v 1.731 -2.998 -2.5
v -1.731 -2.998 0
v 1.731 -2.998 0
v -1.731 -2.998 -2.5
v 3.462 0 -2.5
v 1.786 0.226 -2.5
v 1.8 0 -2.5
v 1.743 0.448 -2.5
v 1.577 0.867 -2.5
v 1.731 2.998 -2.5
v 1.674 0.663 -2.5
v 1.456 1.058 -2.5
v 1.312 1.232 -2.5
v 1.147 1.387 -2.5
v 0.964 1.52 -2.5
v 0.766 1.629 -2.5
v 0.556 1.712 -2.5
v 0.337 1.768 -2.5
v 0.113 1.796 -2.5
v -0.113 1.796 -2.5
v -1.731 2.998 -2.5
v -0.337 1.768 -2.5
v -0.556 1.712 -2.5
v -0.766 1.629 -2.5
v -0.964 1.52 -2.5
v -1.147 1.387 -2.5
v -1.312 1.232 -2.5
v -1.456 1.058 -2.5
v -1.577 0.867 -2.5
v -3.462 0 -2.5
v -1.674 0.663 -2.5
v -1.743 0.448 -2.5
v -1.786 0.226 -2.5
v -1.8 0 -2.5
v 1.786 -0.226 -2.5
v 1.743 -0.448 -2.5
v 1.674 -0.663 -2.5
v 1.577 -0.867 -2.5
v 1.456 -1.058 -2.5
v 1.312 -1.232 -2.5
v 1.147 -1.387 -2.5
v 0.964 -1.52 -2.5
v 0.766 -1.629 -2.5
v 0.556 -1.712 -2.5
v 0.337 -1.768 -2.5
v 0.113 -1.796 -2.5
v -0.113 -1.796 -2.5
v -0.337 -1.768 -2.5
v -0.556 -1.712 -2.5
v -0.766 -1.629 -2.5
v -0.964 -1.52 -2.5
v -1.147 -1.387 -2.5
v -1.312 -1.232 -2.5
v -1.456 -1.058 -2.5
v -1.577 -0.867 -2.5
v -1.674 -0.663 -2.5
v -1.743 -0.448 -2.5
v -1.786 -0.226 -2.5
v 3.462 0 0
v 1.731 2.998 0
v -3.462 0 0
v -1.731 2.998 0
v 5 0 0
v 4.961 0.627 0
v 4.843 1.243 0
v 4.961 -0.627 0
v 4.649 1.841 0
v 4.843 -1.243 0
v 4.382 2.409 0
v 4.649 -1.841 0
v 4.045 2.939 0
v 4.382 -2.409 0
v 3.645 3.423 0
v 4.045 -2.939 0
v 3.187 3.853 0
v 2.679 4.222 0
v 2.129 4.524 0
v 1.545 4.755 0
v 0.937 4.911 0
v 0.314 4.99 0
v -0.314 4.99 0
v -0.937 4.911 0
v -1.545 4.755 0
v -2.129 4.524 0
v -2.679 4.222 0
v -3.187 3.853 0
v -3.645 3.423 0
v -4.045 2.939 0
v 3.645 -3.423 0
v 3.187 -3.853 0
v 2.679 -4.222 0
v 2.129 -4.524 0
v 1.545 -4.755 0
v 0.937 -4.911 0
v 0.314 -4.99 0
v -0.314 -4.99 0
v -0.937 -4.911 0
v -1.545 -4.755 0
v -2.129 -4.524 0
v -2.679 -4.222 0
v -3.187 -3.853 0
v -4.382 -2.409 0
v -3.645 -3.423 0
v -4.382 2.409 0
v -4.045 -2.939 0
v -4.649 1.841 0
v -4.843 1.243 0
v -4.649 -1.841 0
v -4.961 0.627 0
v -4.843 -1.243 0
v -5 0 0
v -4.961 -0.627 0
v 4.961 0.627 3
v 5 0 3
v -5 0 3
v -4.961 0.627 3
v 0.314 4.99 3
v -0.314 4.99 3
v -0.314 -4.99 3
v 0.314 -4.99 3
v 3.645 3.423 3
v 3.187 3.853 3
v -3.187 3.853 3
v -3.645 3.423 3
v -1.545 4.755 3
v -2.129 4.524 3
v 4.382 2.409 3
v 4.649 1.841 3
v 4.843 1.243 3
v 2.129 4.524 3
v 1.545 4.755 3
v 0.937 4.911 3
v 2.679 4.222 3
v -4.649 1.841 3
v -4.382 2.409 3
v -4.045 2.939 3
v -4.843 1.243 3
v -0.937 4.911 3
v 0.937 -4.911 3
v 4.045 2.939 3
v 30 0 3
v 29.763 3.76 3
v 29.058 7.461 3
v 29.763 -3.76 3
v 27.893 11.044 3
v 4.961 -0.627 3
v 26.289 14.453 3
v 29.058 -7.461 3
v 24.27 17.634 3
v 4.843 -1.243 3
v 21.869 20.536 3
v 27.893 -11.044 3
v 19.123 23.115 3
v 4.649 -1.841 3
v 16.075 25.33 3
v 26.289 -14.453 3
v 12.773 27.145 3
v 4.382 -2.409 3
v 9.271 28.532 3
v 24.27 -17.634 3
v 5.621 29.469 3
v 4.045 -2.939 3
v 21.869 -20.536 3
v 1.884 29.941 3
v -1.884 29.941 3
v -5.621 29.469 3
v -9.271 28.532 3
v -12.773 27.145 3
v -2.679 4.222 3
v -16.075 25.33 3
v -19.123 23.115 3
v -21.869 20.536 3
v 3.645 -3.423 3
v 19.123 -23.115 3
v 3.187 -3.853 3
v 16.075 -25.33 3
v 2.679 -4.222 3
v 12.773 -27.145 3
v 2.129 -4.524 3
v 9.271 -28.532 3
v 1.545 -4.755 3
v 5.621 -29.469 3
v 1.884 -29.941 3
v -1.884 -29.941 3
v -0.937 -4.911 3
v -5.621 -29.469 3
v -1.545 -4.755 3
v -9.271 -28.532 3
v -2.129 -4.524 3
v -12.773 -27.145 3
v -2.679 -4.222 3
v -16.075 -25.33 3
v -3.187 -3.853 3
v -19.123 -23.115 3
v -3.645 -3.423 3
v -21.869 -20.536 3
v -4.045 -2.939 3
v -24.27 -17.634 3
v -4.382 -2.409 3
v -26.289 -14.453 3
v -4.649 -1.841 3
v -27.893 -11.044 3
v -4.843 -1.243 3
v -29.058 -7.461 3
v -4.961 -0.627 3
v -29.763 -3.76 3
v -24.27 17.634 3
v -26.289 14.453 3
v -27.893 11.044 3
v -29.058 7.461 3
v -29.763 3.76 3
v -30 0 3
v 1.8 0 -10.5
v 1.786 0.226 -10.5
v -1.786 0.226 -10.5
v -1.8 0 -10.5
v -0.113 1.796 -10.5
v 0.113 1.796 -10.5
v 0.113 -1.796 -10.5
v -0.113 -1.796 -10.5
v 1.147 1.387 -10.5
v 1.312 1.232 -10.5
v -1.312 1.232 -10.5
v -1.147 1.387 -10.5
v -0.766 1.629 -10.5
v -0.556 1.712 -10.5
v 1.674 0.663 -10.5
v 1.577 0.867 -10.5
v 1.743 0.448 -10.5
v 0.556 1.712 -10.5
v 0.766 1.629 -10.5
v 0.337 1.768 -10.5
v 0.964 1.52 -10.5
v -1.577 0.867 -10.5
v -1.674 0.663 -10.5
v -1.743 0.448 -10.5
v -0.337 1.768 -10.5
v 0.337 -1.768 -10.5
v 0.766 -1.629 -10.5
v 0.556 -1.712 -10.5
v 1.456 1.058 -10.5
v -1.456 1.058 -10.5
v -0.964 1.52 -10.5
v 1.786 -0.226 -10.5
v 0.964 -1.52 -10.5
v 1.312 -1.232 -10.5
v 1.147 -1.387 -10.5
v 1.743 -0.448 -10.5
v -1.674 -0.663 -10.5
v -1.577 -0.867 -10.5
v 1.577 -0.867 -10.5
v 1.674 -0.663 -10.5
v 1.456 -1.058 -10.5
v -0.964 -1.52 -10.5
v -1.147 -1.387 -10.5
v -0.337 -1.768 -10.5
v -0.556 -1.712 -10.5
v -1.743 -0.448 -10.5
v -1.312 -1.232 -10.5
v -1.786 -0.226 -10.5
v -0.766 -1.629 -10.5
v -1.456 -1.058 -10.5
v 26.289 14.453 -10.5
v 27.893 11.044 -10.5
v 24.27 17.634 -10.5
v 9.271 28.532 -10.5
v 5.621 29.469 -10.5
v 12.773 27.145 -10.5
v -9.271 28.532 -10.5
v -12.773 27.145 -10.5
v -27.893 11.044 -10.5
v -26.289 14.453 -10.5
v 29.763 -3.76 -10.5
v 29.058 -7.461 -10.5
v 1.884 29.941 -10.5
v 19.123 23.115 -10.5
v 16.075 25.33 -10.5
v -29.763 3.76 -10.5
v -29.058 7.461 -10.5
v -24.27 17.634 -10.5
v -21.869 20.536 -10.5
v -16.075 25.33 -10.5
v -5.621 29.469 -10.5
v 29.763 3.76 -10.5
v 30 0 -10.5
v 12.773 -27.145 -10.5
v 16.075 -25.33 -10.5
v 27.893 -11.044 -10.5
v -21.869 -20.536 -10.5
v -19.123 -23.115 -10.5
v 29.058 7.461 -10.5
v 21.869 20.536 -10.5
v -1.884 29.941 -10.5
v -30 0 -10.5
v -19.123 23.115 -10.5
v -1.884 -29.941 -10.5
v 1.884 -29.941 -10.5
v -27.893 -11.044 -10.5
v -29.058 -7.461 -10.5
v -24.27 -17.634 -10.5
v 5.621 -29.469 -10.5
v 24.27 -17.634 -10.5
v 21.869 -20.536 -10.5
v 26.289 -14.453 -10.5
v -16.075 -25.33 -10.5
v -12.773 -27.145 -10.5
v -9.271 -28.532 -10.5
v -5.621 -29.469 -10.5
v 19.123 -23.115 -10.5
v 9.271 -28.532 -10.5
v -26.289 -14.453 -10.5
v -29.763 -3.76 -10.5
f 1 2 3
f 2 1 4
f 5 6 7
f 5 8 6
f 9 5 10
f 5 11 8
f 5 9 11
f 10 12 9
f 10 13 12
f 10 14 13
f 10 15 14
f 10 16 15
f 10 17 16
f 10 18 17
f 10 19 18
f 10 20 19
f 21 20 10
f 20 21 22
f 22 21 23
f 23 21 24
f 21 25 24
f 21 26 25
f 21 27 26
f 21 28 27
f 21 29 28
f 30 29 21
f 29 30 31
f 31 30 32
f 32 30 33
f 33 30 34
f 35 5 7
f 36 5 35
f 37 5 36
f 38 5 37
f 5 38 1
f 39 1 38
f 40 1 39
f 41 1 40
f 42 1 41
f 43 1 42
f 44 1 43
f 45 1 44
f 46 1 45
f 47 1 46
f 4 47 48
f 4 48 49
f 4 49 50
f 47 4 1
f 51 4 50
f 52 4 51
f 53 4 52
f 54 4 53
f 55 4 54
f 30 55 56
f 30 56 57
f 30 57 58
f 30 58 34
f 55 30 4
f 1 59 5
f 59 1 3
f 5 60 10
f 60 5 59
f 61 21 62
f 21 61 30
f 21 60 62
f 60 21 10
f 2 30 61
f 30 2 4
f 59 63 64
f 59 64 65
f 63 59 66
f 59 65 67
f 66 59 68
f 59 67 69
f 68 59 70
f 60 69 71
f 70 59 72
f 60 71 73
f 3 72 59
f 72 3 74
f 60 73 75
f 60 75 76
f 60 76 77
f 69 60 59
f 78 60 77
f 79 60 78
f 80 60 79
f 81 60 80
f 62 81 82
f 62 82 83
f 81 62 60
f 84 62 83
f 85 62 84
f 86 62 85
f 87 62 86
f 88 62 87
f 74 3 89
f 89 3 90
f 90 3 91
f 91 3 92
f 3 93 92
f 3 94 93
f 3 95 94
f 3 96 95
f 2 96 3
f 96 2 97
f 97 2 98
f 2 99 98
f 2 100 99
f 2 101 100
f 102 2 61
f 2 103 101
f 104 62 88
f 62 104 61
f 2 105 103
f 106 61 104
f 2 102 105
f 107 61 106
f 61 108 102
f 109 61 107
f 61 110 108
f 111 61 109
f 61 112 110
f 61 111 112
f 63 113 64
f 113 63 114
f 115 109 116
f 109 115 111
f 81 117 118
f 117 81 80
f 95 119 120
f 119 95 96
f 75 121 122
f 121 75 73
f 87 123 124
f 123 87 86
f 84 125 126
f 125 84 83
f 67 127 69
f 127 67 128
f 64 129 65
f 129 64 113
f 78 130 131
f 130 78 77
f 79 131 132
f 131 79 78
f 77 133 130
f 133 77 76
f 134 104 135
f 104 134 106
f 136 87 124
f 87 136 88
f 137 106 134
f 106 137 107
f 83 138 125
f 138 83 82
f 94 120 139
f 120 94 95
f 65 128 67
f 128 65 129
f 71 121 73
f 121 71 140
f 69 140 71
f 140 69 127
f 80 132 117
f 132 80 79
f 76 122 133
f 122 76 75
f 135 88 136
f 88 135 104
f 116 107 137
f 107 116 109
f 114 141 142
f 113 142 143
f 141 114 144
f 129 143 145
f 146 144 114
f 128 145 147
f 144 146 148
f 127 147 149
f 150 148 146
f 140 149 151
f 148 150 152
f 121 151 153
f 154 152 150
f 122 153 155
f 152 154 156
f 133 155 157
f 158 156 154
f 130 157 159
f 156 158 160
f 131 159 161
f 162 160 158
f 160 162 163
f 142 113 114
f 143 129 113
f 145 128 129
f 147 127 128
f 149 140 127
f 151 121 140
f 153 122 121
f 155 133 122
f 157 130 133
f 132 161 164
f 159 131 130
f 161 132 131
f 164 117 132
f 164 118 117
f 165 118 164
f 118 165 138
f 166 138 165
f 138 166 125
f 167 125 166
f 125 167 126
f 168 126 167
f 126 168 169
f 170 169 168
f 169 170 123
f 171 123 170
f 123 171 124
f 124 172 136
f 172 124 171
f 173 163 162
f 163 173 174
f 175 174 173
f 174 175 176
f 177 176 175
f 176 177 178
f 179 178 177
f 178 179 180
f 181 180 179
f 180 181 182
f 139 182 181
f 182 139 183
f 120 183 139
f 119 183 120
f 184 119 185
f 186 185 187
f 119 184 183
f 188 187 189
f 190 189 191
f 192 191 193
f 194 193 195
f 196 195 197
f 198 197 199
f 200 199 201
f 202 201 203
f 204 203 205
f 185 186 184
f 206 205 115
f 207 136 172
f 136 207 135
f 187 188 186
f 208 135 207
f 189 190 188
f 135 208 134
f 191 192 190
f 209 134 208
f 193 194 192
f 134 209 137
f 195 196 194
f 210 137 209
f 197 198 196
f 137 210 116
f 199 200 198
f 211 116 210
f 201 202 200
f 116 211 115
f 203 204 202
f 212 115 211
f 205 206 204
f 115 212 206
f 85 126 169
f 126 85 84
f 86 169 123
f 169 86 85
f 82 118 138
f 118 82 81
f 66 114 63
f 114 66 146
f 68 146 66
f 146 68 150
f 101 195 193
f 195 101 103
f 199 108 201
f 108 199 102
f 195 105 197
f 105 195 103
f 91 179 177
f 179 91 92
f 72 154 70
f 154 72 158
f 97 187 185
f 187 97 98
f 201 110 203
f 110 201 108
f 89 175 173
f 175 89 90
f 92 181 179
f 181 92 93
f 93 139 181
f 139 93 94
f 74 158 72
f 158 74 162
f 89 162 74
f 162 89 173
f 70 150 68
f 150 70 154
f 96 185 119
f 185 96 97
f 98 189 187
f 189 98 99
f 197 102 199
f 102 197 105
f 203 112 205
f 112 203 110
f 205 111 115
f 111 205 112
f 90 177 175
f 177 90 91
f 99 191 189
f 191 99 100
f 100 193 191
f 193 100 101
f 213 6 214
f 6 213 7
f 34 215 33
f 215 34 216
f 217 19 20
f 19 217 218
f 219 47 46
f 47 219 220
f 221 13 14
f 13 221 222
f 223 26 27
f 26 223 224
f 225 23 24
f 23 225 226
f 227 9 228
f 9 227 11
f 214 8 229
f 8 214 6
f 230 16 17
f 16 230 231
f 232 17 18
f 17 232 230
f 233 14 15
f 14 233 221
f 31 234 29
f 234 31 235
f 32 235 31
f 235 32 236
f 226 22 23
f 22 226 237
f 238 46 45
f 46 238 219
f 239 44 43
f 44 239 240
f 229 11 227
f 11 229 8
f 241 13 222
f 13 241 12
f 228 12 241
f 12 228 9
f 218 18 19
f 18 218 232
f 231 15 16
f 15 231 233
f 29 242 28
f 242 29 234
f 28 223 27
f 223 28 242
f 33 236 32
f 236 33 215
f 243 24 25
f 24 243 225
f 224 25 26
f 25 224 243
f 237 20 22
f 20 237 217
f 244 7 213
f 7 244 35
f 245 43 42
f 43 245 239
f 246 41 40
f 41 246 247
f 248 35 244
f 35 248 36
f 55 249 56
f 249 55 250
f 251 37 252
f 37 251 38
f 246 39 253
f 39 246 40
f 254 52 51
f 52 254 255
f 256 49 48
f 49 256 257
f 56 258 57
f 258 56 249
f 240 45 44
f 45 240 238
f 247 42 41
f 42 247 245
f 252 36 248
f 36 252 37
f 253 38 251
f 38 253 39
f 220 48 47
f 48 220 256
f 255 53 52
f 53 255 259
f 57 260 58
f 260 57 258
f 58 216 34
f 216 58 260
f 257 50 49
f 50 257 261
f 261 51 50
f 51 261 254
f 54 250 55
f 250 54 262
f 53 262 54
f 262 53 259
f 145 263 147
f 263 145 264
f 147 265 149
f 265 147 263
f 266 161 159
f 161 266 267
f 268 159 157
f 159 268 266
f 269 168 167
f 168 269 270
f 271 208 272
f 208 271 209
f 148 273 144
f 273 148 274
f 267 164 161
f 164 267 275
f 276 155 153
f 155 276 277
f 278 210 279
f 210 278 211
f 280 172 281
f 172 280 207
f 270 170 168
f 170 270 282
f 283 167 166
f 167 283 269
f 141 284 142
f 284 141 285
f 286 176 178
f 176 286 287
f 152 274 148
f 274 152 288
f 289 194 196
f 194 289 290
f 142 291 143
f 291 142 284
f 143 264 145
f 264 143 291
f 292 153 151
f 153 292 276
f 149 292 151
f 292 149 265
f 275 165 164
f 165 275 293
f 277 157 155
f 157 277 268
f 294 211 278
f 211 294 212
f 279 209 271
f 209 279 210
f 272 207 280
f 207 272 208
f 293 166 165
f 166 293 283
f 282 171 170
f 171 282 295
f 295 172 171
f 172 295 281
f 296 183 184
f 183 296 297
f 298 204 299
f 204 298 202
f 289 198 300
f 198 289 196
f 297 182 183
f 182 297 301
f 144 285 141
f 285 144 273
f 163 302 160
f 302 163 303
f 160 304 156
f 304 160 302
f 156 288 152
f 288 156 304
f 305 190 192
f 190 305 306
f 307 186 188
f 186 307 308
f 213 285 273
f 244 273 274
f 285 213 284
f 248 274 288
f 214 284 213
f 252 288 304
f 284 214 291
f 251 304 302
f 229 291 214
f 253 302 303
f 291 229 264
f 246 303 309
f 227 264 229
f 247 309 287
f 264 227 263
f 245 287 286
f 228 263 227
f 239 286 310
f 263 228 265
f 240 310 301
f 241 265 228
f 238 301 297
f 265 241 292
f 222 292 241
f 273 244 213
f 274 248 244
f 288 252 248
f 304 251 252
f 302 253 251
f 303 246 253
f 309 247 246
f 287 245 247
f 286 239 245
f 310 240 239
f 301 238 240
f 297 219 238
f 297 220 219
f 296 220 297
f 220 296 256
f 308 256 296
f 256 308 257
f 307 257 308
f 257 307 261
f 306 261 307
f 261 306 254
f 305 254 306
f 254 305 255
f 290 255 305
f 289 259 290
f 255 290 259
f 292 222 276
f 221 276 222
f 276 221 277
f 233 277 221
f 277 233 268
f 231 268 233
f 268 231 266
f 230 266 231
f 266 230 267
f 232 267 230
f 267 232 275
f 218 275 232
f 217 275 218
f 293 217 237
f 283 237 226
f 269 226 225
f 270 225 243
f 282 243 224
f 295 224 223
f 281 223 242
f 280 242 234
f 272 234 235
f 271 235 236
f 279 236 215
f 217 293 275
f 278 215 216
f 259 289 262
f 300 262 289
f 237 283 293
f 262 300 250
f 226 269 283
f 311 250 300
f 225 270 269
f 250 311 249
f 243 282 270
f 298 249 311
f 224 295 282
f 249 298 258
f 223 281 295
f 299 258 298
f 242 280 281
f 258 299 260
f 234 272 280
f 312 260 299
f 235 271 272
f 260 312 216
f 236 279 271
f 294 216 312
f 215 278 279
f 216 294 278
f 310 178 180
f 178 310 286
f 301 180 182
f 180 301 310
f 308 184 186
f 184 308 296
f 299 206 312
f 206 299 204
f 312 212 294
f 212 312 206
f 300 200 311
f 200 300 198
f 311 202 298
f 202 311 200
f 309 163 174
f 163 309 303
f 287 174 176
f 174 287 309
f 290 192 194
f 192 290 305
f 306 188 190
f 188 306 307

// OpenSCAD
$fn = 50;


difference() {
	union() {
		translate(v = [0, 0, -10.5000000000]) {
			cylinder(h = 13.5000000000, r = 30.0000000000);
		}
	}
	union() {
		translate(v = [0, 0, 0]) {
			rotate(a = [0, 0, 0]) {
				difference() {
					union() {
						translate(v = [0, 0, -2.5000000000]) {
							linear_extrude(height = 2.5000000000) {
								polygon(points = [[3.4620000000, 0.0000000000], [1.7310000000, 2.9981799479], [-1.7310000000, 2.9981799479], [-3.4620000000, 0.0000000000], [-1.7310000000, -2.9981799479], [1.7310000000, -2.9981799479]]);
							}
						}
					}
					union();
				}
			}
		}
		#cylinder(h = 3, r = 5.0000000000);
		#translate(v = [0, 0, -100.0000000000]) {
			cylinder(h = 200, r = 1.8000000000);
		}
	}
}
